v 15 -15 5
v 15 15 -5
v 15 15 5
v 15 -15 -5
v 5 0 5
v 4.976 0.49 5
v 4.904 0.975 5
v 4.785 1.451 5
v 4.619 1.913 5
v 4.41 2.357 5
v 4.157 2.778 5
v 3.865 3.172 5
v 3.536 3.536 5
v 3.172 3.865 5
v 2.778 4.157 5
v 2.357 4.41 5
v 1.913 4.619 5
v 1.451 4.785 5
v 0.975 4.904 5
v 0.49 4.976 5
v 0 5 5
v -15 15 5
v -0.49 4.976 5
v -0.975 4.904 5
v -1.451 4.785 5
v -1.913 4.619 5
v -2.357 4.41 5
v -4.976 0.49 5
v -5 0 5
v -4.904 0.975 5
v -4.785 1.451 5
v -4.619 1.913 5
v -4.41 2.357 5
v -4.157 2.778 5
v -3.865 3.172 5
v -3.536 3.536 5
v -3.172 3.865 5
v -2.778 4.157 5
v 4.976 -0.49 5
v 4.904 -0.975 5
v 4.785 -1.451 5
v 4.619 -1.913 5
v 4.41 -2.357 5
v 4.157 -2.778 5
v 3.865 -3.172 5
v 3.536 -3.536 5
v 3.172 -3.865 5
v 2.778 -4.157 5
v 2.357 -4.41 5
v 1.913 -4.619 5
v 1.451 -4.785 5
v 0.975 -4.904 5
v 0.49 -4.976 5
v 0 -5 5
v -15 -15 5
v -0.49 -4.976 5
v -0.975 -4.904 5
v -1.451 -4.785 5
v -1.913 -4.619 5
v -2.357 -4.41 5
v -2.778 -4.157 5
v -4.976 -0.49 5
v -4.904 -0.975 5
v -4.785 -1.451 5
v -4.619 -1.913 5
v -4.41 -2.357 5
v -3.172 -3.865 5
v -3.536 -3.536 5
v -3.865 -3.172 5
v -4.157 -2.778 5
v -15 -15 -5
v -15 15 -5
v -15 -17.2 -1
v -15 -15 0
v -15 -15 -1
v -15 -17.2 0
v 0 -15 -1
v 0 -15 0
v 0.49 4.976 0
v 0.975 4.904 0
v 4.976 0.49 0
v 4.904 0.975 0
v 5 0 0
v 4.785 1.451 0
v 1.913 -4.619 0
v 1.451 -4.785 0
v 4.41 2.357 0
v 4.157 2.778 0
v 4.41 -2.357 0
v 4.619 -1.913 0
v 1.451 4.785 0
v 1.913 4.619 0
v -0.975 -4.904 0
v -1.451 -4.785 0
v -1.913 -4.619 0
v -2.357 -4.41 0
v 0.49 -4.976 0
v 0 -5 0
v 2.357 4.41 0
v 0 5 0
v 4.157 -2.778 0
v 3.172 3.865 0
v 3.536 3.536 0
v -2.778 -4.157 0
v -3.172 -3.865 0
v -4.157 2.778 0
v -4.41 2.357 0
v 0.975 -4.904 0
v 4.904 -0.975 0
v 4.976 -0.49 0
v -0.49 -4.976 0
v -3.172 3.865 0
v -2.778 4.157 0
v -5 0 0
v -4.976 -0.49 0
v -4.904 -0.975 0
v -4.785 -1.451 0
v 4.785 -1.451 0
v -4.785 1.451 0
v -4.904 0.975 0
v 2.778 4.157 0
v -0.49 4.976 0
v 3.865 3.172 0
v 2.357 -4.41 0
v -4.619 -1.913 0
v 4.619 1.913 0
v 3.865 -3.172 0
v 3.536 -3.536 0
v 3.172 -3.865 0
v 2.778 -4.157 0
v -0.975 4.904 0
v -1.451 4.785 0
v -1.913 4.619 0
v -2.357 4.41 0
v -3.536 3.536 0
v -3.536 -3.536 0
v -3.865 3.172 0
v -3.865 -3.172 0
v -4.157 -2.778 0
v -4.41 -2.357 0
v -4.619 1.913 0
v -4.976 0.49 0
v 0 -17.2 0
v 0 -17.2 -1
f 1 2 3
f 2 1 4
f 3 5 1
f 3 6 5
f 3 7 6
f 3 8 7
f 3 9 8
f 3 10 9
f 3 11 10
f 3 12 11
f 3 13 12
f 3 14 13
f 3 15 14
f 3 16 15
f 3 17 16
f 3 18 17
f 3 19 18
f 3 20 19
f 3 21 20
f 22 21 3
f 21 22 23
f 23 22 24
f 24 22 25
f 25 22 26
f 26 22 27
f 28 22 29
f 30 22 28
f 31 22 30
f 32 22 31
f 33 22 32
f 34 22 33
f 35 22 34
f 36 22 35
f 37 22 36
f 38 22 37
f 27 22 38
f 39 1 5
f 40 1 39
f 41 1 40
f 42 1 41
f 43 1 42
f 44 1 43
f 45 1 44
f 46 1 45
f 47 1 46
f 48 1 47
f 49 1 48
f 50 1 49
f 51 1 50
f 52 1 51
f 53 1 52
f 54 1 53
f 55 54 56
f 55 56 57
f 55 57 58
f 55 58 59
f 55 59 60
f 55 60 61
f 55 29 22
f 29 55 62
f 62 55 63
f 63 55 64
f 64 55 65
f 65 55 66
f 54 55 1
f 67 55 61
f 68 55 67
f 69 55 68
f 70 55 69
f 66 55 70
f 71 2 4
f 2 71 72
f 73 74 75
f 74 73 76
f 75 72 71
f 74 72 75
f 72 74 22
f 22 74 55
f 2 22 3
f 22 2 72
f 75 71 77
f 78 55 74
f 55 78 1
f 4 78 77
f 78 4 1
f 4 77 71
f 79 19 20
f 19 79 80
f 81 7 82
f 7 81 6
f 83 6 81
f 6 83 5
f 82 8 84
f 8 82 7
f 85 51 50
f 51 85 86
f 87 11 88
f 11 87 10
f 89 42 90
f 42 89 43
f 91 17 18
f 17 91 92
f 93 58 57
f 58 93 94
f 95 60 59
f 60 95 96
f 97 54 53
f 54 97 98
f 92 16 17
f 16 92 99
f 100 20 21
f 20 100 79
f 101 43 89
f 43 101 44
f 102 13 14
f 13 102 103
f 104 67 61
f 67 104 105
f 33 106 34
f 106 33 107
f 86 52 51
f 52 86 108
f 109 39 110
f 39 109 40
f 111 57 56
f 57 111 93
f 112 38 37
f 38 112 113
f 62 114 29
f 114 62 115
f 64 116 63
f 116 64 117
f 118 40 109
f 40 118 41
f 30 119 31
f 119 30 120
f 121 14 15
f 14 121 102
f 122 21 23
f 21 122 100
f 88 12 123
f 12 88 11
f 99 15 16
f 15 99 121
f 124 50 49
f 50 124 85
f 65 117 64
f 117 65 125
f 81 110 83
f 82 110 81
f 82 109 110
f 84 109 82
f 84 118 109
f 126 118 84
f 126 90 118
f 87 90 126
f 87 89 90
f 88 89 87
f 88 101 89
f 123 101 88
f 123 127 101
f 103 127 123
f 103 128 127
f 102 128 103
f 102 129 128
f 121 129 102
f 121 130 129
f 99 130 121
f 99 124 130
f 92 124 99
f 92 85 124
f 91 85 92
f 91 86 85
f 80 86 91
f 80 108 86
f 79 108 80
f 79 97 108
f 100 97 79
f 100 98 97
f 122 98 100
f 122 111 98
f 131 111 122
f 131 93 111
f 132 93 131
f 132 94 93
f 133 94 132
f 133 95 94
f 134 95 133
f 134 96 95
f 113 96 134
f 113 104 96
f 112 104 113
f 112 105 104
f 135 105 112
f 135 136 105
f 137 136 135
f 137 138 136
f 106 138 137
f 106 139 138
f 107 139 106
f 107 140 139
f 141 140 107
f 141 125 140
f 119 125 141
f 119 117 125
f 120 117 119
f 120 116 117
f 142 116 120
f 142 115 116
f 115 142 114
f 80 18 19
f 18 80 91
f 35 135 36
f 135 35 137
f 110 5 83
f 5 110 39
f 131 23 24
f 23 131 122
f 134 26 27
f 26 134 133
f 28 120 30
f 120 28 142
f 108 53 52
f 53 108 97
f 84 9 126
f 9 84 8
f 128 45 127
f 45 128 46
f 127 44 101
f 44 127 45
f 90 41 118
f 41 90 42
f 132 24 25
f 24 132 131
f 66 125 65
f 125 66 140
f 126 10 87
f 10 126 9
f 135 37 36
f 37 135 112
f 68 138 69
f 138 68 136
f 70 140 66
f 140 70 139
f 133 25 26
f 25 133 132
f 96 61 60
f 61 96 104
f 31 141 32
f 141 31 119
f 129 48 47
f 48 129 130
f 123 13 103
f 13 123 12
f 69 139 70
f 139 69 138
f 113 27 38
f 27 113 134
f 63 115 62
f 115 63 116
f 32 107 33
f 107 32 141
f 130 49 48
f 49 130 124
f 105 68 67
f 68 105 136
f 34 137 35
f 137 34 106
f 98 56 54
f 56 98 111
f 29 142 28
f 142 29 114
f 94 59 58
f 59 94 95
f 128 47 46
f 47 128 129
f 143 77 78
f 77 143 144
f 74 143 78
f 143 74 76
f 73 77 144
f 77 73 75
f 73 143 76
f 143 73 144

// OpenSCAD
$fn = 64;

// Camera body
module camera_body() {
    difference() {
        // Main body
        cube([30, 30, 10], center = true);
        // Lens cutout
        translate([0, 0, 5])
            cylinder(h = 10, r1 = 5, r2 = 5, center = true);
    }
}

// Ribbon connector
module ribbon_connector() {
    translate([-7.5, -1.1, -0.5])
        cube([15, 2.2, 1], center = true);
}

// Assemble camera module
module camera_module() {
    union() {
        camera_body();
        translate([0, -15, 0])
            ribbon_connector();
    }
}

// Render the camera module
camera_module();
